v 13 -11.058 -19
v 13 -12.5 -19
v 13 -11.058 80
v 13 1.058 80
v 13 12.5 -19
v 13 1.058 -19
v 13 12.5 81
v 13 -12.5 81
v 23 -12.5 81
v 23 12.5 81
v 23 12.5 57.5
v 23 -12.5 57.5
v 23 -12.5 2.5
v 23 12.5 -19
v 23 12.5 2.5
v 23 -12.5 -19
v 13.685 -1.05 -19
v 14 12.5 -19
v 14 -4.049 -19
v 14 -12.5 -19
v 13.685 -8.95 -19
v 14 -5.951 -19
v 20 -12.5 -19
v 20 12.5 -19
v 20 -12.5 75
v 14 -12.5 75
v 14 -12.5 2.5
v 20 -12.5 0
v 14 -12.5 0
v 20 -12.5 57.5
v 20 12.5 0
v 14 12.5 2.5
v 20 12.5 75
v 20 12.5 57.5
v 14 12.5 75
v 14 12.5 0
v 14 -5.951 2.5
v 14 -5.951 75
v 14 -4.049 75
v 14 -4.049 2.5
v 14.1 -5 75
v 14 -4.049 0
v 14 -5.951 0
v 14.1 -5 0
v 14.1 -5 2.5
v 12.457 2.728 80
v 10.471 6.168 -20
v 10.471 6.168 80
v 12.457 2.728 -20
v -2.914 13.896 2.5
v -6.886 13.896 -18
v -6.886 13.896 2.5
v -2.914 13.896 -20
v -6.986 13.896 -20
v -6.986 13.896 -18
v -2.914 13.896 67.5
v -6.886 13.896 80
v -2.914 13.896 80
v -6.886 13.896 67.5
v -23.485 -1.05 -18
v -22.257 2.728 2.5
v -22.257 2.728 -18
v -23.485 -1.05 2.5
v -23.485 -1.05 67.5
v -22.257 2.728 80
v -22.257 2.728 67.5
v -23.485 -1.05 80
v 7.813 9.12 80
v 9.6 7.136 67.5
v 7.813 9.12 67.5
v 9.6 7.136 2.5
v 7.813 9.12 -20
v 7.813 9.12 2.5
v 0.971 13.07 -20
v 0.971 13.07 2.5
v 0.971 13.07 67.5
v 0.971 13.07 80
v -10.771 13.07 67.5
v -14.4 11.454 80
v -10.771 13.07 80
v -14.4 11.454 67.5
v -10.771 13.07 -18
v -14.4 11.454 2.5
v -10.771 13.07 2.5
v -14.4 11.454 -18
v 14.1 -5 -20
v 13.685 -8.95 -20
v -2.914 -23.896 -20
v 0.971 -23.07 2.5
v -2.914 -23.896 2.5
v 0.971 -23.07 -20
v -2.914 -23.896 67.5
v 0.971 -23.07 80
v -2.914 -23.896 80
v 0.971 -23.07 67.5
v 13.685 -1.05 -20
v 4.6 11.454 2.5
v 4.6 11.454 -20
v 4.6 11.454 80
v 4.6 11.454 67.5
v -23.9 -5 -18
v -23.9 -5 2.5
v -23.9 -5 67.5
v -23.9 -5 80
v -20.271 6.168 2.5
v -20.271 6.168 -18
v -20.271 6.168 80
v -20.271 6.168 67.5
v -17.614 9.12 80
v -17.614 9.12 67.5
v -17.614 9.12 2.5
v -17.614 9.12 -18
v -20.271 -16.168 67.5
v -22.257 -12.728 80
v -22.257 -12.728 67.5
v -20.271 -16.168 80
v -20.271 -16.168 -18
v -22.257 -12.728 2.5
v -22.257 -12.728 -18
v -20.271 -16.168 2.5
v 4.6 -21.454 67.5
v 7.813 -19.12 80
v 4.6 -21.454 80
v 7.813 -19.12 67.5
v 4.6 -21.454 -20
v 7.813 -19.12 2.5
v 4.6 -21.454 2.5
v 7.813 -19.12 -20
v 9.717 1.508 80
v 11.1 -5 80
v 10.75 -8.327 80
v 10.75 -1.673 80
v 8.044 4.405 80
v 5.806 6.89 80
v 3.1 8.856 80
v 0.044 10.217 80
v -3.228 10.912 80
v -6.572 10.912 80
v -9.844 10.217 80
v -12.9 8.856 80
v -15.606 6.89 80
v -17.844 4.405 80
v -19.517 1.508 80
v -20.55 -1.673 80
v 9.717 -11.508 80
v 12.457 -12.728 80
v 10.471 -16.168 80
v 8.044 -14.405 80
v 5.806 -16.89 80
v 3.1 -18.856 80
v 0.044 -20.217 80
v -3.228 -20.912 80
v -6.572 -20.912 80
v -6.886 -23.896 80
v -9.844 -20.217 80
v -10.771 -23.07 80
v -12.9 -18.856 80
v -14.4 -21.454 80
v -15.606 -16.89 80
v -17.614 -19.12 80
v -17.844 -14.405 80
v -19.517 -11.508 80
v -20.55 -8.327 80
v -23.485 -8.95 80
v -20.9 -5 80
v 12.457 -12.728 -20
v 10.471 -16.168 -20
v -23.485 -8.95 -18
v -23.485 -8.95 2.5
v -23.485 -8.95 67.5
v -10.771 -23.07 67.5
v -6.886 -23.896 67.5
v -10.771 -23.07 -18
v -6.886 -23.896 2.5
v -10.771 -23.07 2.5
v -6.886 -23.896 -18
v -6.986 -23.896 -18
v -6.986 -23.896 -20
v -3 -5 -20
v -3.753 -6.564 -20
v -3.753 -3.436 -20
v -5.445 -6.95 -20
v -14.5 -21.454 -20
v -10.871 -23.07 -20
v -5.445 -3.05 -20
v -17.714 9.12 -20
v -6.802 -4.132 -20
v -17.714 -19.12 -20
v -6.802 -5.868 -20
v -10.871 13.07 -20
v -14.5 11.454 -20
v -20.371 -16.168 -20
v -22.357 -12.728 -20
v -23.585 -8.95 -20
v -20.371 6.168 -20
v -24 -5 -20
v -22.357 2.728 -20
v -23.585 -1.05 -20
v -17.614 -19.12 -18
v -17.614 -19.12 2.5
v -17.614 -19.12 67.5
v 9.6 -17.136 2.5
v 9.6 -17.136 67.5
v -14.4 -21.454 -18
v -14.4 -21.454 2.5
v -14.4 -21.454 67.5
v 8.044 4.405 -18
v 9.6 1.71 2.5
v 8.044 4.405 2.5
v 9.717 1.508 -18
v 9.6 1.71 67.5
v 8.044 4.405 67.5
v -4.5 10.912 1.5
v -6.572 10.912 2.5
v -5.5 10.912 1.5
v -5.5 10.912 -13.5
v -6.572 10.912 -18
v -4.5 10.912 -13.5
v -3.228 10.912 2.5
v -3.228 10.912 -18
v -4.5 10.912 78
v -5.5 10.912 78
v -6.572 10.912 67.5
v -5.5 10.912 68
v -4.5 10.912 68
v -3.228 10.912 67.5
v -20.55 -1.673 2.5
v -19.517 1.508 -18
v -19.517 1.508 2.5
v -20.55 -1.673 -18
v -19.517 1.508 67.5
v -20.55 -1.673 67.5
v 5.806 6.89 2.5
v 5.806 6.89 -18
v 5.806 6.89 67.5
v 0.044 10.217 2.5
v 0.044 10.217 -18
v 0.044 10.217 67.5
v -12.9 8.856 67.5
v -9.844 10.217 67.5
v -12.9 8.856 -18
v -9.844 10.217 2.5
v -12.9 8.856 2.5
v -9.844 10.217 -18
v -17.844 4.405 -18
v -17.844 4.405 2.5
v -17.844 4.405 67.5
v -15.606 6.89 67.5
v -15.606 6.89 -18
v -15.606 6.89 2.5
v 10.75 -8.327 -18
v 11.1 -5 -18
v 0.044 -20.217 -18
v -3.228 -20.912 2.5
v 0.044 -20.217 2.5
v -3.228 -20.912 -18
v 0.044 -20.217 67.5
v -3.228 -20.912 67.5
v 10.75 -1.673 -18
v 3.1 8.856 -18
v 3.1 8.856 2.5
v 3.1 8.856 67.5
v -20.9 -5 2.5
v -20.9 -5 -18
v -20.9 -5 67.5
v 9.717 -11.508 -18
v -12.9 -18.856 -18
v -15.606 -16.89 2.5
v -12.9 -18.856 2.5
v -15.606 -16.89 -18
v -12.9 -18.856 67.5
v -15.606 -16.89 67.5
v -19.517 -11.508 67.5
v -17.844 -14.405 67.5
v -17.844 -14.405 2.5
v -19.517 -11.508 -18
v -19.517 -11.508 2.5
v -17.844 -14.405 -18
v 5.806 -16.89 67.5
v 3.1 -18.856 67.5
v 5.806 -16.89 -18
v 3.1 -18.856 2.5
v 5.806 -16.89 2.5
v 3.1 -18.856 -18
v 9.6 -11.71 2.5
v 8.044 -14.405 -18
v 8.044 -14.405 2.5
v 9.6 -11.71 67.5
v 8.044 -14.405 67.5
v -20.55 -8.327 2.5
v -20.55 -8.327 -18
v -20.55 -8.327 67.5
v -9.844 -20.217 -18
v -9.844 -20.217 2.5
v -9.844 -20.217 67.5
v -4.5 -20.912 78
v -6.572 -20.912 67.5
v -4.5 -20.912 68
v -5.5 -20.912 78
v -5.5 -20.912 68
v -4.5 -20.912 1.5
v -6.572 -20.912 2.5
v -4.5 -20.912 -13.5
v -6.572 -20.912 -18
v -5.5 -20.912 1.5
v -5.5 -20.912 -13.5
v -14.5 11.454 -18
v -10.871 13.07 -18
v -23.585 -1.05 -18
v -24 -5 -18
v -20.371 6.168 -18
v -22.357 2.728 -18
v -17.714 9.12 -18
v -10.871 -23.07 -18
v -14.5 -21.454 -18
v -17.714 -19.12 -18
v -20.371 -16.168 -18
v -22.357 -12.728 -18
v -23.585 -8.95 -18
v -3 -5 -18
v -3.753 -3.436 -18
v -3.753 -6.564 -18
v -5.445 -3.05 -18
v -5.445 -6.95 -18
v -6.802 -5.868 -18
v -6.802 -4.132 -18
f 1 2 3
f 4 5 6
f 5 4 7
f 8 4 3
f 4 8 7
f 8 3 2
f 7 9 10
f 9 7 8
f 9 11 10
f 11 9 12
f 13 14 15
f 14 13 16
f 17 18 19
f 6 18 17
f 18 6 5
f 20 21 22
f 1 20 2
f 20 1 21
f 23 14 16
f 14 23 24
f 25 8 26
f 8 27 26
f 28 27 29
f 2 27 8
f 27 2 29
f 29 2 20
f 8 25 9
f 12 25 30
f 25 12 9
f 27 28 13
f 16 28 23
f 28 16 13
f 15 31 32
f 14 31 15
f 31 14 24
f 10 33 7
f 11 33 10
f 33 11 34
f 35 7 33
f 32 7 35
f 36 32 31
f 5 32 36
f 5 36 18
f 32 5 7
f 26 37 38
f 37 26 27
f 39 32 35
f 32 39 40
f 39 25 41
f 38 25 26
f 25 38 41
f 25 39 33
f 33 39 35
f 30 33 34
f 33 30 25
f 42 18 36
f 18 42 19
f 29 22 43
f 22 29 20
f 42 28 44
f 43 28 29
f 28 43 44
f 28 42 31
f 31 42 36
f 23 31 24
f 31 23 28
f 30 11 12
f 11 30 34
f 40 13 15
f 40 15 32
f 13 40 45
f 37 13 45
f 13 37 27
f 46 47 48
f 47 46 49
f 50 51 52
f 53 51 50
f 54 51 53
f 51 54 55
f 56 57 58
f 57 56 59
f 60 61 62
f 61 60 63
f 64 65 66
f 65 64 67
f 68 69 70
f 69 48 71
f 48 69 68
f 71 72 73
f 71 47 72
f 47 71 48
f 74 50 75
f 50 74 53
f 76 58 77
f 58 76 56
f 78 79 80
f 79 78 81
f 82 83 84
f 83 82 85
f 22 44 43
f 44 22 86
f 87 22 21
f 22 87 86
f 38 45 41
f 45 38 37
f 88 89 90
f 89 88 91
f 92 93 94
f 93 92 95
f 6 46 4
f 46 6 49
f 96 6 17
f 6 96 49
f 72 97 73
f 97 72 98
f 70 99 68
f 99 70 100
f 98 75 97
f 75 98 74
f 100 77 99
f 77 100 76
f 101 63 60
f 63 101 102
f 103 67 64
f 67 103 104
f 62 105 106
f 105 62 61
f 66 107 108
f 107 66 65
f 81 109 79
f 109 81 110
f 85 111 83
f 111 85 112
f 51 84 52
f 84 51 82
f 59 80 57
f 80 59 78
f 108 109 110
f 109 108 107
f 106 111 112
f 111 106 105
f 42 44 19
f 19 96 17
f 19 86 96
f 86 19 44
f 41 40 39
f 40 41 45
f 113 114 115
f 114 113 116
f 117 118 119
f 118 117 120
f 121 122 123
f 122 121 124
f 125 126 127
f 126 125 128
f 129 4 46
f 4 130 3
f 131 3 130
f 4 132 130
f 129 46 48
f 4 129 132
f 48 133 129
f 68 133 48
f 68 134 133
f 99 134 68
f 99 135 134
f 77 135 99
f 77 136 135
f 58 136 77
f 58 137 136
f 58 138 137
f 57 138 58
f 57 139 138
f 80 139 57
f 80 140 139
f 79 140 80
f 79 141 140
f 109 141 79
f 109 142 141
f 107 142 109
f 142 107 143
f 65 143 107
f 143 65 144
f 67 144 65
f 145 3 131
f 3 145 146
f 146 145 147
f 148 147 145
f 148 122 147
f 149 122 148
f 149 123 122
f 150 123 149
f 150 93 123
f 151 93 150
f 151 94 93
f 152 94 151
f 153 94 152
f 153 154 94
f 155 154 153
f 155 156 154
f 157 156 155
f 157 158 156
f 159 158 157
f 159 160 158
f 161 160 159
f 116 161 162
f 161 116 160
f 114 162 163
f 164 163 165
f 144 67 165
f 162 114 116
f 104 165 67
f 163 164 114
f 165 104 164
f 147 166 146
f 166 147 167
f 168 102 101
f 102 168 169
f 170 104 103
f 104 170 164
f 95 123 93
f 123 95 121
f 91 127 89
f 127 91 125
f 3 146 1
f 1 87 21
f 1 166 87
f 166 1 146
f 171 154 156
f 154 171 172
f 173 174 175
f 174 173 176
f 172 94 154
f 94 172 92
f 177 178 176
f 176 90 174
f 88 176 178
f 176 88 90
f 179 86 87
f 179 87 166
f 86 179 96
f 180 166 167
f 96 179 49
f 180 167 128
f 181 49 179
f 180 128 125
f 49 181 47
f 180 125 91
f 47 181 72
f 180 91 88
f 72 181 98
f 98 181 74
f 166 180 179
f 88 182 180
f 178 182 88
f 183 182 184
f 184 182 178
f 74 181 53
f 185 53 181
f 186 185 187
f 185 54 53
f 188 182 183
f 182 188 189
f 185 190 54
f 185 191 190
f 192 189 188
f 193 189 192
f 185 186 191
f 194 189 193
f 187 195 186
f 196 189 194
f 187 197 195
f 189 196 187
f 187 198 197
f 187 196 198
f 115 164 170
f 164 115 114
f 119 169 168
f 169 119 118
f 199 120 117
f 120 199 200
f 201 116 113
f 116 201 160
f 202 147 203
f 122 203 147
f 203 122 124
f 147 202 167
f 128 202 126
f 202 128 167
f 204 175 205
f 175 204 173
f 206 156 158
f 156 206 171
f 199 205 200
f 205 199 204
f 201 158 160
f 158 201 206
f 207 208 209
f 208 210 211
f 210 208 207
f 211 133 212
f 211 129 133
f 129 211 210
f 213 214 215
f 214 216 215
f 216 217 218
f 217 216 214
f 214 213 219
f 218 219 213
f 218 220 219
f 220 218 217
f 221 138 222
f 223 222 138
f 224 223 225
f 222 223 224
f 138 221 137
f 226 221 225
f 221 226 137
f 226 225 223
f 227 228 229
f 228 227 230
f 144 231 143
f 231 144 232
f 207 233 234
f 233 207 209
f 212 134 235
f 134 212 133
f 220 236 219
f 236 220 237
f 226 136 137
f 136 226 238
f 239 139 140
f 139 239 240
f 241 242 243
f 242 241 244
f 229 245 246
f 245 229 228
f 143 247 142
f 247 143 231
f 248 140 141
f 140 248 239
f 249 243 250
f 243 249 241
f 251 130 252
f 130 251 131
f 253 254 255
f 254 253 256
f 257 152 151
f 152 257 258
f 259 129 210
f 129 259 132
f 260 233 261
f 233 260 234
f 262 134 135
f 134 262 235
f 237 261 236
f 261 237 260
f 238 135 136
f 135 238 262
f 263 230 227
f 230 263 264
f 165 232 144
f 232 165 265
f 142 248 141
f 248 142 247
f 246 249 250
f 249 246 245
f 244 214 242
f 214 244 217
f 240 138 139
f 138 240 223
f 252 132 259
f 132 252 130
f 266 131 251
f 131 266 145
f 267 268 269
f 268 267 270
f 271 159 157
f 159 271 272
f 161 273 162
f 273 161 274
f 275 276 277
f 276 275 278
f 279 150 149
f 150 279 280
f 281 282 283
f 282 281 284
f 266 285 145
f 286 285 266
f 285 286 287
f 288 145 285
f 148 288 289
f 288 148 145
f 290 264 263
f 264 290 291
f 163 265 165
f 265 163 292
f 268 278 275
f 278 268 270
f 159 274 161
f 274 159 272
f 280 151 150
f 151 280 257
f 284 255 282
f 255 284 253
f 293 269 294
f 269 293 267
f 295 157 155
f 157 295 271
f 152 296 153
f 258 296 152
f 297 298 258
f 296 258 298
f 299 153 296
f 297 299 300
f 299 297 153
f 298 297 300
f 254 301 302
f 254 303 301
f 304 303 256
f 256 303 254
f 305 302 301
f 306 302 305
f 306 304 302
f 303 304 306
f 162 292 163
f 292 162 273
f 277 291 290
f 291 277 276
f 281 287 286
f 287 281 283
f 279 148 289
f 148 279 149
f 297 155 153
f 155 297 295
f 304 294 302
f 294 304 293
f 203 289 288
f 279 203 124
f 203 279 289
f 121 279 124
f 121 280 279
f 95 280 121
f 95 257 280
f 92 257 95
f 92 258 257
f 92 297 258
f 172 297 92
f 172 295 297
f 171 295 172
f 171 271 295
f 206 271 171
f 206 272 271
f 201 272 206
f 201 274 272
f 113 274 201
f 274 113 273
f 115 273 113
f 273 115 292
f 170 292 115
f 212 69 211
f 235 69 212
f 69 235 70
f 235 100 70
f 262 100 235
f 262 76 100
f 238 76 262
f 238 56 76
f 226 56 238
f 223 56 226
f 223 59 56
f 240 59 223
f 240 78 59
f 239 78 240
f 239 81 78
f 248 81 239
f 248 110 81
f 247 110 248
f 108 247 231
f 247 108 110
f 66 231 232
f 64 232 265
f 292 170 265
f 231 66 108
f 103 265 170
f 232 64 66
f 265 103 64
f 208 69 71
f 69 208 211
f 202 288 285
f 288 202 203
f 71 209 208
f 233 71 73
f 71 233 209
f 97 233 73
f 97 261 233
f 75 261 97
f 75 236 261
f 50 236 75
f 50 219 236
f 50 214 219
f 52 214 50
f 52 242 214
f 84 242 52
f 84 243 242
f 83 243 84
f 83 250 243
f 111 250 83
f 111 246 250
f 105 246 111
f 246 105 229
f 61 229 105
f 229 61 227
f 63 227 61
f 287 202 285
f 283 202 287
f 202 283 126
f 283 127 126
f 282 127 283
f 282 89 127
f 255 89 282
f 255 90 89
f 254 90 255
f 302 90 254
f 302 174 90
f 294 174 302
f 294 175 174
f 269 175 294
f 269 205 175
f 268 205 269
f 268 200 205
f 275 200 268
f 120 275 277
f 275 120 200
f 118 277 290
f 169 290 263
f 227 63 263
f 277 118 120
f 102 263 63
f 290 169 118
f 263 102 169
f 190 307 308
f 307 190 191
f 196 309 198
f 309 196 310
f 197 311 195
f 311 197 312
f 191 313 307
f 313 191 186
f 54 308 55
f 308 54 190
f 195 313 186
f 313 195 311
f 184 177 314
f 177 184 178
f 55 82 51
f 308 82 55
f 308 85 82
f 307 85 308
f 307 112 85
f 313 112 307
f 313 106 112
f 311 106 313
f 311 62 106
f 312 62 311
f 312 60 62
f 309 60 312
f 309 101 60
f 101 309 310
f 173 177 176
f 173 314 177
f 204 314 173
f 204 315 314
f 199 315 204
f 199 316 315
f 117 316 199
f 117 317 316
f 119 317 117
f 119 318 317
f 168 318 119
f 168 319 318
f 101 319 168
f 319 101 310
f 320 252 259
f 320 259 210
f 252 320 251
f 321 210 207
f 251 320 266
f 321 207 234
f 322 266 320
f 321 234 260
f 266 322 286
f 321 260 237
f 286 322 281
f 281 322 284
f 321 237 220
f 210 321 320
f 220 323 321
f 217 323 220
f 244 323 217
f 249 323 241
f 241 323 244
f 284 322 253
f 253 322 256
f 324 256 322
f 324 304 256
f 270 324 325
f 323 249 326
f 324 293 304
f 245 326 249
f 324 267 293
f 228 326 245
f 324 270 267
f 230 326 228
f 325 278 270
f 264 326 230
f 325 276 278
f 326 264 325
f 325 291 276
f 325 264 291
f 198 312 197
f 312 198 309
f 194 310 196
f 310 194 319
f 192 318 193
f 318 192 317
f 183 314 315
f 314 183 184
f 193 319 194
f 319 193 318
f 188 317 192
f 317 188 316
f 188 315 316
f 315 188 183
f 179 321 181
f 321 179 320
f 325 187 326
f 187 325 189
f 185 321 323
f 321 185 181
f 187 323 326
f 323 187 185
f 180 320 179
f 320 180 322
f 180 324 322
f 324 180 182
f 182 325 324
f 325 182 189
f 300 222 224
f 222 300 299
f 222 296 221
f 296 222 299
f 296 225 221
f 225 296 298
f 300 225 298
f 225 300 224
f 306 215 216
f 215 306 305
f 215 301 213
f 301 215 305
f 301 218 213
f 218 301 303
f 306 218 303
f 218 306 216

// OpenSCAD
translate([-4.9,-5,-20])  

difference(){
  
  cylinder(100,19,19);
  cylinder(100,16,16);

  translate([-3,0,55])  cube([35,45,65], true);

}
translate([-5,-5,73])  cube([1,33,10], true);
translate([-5,-5,-6])  cube([1,33,15], true);
difference(){

  translate([-5,-5,-20])   cylinder(2,19,19);
   translate([-5,-5,-200]) cylinder(200,2,2);
}
difference(){
  translate([18,0,31])  cube([10,25,100], true);
translate([17,0,65])  cube([6,26,20], true);
  translate([17,0,-15])  cube([6,26,30], true);
   translate([19,0,30])  cube([10,26,55], true);
}
